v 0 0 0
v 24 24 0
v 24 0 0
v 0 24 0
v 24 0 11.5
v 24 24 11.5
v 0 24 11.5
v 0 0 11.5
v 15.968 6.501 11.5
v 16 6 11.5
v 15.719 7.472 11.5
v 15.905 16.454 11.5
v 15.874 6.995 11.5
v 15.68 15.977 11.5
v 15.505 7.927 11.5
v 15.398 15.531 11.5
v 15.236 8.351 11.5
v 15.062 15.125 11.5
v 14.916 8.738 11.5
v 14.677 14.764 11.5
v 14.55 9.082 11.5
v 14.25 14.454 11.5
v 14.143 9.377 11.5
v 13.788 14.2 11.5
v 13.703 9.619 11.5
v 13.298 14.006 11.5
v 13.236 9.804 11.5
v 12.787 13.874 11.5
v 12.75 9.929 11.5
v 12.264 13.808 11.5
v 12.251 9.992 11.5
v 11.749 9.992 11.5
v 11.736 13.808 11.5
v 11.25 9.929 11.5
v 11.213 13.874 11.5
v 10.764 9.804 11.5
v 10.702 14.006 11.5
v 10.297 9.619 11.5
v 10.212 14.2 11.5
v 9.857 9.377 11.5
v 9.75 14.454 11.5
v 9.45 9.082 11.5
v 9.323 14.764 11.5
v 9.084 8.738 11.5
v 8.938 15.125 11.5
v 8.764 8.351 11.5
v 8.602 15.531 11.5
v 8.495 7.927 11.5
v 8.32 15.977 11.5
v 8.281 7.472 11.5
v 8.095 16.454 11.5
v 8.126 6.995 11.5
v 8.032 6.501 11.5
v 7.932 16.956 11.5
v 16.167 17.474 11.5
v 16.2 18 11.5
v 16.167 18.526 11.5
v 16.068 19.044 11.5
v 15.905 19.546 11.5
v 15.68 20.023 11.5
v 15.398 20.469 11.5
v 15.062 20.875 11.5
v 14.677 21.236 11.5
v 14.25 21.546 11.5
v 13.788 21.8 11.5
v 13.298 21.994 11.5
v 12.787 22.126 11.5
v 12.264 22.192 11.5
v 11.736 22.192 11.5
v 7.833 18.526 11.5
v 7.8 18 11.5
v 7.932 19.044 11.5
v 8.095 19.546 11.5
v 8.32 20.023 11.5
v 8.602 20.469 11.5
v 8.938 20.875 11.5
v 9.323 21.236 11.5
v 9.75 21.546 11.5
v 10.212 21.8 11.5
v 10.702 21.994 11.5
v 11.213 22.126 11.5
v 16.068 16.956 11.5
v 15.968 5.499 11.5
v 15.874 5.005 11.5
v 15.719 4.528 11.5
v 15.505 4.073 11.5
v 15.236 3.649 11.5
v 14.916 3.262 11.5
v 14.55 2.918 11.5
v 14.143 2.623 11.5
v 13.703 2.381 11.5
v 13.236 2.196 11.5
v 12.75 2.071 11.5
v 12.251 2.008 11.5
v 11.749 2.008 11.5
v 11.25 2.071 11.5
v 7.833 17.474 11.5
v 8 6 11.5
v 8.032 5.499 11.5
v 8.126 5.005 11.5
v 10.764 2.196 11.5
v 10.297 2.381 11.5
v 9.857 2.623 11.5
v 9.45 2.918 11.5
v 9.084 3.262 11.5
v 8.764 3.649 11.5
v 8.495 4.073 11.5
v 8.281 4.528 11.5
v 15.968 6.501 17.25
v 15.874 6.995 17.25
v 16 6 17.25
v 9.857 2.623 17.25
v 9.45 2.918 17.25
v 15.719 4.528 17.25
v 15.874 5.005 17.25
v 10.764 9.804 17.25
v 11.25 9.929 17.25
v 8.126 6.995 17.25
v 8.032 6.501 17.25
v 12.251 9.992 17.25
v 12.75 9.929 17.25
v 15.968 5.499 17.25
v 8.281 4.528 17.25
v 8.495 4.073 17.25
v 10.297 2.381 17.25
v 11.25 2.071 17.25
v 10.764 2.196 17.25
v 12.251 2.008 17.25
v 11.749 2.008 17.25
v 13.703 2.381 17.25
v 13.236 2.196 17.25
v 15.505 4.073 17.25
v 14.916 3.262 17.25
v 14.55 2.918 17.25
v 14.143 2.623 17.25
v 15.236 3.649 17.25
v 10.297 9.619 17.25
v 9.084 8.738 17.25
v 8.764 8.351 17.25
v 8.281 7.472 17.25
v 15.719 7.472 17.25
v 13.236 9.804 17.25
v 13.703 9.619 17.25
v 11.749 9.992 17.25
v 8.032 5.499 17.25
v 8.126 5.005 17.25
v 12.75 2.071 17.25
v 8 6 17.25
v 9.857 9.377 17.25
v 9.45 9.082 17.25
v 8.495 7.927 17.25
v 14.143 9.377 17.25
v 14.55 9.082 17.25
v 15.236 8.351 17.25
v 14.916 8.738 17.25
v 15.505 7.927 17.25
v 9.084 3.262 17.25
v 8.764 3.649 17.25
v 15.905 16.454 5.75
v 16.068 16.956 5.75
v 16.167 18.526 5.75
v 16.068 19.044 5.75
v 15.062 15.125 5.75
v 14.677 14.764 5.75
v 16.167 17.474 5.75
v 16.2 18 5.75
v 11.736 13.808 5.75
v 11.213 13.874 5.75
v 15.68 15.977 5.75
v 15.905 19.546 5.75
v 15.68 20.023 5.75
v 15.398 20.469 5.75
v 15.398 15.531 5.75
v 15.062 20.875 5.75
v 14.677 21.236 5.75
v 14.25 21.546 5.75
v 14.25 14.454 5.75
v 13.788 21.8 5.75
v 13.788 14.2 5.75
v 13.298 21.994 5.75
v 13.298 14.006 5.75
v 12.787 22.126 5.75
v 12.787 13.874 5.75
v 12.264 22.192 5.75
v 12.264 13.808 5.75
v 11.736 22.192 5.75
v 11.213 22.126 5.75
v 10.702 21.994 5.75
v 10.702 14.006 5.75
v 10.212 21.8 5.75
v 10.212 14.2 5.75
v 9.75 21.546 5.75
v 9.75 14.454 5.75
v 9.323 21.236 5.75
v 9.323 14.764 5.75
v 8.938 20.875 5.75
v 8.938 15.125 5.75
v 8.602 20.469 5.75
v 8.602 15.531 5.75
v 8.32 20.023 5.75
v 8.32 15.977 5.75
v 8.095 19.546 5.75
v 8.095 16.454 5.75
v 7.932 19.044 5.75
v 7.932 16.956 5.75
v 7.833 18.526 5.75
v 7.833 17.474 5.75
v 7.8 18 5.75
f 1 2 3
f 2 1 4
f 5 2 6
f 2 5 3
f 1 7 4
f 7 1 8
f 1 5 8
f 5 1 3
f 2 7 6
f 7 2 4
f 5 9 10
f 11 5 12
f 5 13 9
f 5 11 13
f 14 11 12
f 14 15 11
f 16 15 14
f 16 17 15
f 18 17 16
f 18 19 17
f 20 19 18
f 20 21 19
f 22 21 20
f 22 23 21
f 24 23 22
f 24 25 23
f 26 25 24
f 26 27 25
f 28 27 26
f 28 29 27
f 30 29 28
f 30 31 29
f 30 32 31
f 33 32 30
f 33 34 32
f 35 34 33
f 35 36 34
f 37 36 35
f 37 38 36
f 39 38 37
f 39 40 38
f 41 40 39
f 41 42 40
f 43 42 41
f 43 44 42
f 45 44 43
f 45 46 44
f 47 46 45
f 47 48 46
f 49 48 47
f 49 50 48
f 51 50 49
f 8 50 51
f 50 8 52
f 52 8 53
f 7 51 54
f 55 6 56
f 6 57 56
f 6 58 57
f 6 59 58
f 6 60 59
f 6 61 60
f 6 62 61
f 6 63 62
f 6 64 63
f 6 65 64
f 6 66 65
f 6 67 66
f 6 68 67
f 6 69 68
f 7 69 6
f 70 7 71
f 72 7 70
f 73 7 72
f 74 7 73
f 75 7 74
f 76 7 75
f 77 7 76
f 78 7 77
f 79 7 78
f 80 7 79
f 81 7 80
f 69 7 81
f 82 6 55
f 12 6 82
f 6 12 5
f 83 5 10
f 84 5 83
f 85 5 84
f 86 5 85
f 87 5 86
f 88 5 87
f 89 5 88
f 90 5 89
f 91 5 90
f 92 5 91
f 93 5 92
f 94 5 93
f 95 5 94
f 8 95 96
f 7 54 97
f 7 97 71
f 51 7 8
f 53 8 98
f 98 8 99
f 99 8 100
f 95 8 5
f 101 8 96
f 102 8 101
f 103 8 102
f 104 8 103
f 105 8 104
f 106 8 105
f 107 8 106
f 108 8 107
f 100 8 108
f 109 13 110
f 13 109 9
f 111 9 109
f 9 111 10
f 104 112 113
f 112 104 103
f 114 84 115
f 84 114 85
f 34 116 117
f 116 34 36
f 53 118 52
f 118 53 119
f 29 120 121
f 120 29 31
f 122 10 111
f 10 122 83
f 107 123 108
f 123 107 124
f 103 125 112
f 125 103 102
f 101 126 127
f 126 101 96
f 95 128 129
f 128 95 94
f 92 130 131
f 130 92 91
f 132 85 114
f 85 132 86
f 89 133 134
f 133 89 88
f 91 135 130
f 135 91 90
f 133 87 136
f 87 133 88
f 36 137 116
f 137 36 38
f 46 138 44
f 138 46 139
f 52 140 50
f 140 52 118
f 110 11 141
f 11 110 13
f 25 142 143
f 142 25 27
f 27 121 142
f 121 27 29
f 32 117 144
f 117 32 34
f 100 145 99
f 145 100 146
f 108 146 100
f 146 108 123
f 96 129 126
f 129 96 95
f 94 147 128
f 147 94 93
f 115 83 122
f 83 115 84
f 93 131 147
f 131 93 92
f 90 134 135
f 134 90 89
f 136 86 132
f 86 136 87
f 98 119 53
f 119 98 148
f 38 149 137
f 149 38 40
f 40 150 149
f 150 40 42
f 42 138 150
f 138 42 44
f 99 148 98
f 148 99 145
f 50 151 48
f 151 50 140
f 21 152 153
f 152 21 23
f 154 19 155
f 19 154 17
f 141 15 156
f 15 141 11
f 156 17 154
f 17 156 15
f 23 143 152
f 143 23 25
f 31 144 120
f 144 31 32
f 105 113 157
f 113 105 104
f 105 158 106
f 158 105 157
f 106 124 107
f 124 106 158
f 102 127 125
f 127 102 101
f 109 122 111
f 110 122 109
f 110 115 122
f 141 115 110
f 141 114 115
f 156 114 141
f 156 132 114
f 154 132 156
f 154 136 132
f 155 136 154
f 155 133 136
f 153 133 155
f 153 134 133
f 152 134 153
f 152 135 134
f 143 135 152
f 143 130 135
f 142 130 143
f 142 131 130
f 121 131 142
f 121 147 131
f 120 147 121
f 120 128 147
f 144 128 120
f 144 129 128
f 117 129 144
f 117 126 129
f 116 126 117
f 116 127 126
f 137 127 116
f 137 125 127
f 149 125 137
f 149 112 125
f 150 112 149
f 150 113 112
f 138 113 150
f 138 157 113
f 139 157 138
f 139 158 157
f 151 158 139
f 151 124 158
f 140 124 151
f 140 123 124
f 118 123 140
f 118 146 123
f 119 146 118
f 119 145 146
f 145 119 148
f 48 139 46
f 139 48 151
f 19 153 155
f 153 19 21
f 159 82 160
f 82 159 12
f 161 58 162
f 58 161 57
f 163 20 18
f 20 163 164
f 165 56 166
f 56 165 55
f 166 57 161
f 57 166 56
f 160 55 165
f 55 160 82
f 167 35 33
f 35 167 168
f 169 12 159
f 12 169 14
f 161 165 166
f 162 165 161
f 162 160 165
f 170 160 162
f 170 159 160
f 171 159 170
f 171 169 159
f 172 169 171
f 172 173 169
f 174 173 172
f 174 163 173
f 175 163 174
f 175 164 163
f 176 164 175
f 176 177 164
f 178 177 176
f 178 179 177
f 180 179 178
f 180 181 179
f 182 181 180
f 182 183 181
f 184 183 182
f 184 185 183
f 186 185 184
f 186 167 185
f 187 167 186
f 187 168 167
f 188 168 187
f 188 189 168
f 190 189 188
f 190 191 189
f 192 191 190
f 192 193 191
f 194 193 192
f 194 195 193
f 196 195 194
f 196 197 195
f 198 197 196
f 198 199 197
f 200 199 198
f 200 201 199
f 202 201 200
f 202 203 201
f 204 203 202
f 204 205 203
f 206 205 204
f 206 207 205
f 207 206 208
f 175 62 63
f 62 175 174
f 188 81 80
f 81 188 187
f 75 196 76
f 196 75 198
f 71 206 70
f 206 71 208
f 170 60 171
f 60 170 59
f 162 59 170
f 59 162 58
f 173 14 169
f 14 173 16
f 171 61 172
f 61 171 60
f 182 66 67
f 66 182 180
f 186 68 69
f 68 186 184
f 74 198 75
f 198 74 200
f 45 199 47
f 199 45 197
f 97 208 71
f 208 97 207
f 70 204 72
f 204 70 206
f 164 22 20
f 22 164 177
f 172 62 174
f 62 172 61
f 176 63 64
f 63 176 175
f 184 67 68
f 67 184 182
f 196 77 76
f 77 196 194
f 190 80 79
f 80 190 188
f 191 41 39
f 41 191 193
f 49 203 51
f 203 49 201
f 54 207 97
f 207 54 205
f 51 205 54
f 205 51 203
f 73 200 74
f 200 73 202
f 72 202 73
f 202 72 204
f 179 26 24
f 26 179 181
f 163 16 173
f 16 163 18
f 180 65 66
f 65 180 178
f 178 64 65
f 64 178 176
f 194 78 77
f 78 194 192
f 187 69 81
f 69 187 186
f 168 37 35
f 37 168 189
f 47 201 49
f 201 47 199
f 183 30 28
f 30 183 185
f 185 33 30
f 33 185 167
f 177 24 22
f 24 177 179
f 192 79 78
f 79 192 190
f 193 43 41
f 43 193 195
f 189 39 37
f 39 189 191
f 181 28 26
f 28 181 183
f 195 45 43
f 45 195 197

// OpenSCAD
/*

 A magnetic rack for 8-well strip tubes

 Mark Stenglein, 10.10.2018

*/


// include <nuts_and_bolts_v1.95.scad>

// this variable controls the resolution of the model (the number of fragments)
// decrease for coarser
$fn=50;


// dimensions in mm -- modify these to change size 
base_length = 0;
base_width = 24;
base_height = 11.5;

end_length = 12;


// spacer_od = (3/8)*2.54*10;
hole_diameter = 6.65;  // empirically determined 

holes_x_offset = 5.5;
holes_y_offset = 3; 
hole_spacing = 9; // 96 well plate well-well spacing
strips_offset = 10;

magnet_gap_z_offset = 6;


magnet_gap_length = 122; // 2x 60 mm magnets
magnet_gap_width = 4.5; // for a 4mm wide magnet
magnet_gap_height = 10.5; // for a 10mm wide magnet

// test_pegs


// make it - blocked

difference()
{
   rack();
   // block();
}


// block will block of part of the part for test pringing
module block()
{
   translate([base_width*-0.05,base_length/3,base_height*-0.05])
   linear_extrude(height=base_height*1.1)
   square([base_width*1.1, base_length], false);
}

module rack()
{
   difference()
   {
      base();
      // holes();
      // %magnet_gap();
   }
}

module base()
{
   difference()
   {
      union()
      {
         linear_extrude(height=base_height)
         { 
            translate([0, 0, 0])
            square([base_width, base_length + end_length * 2], false);
         }
         peg_m();
      }
      peg_f();
   }
}

module holes ()
{
   for (row =[0:1:1])
   {
      for (hole =[0:1:13])
      {
         translate([0,0,-base_height*0.05])
         linear_extrude(height=base_height*1.1)
         {
            translate([holes_x_offset + (row * (base_width - (2 * holes_x_offset))) , (end_length + holes_y_offset + (hole * hole_spacing)), 0 ])
            circle(d=hole_diameter);
         }
      }
   }
}

module magnet_gap()
{
   translate([(base_width/2 - magnet_gap_width/2), end_length,  magnet_gap_z_offset])
   linear_extrude(height=magnet_gap_height)
   square([magnet_gap_width, magnet_gap_length], false);
   
}

module peg_m()
{
   translate([base_width/2, end_length/2, base_height])
   linear_extrude(height=base_height/2)
   circle(d=end_length/1.5);
}

module peg_f()
{
   translate([base_width/2, base_length + 1.5 * end_length, base_height/2])
   linear_extrude(height=base_height)
   circle(d=(end_length/1.5)*1.05);
}
